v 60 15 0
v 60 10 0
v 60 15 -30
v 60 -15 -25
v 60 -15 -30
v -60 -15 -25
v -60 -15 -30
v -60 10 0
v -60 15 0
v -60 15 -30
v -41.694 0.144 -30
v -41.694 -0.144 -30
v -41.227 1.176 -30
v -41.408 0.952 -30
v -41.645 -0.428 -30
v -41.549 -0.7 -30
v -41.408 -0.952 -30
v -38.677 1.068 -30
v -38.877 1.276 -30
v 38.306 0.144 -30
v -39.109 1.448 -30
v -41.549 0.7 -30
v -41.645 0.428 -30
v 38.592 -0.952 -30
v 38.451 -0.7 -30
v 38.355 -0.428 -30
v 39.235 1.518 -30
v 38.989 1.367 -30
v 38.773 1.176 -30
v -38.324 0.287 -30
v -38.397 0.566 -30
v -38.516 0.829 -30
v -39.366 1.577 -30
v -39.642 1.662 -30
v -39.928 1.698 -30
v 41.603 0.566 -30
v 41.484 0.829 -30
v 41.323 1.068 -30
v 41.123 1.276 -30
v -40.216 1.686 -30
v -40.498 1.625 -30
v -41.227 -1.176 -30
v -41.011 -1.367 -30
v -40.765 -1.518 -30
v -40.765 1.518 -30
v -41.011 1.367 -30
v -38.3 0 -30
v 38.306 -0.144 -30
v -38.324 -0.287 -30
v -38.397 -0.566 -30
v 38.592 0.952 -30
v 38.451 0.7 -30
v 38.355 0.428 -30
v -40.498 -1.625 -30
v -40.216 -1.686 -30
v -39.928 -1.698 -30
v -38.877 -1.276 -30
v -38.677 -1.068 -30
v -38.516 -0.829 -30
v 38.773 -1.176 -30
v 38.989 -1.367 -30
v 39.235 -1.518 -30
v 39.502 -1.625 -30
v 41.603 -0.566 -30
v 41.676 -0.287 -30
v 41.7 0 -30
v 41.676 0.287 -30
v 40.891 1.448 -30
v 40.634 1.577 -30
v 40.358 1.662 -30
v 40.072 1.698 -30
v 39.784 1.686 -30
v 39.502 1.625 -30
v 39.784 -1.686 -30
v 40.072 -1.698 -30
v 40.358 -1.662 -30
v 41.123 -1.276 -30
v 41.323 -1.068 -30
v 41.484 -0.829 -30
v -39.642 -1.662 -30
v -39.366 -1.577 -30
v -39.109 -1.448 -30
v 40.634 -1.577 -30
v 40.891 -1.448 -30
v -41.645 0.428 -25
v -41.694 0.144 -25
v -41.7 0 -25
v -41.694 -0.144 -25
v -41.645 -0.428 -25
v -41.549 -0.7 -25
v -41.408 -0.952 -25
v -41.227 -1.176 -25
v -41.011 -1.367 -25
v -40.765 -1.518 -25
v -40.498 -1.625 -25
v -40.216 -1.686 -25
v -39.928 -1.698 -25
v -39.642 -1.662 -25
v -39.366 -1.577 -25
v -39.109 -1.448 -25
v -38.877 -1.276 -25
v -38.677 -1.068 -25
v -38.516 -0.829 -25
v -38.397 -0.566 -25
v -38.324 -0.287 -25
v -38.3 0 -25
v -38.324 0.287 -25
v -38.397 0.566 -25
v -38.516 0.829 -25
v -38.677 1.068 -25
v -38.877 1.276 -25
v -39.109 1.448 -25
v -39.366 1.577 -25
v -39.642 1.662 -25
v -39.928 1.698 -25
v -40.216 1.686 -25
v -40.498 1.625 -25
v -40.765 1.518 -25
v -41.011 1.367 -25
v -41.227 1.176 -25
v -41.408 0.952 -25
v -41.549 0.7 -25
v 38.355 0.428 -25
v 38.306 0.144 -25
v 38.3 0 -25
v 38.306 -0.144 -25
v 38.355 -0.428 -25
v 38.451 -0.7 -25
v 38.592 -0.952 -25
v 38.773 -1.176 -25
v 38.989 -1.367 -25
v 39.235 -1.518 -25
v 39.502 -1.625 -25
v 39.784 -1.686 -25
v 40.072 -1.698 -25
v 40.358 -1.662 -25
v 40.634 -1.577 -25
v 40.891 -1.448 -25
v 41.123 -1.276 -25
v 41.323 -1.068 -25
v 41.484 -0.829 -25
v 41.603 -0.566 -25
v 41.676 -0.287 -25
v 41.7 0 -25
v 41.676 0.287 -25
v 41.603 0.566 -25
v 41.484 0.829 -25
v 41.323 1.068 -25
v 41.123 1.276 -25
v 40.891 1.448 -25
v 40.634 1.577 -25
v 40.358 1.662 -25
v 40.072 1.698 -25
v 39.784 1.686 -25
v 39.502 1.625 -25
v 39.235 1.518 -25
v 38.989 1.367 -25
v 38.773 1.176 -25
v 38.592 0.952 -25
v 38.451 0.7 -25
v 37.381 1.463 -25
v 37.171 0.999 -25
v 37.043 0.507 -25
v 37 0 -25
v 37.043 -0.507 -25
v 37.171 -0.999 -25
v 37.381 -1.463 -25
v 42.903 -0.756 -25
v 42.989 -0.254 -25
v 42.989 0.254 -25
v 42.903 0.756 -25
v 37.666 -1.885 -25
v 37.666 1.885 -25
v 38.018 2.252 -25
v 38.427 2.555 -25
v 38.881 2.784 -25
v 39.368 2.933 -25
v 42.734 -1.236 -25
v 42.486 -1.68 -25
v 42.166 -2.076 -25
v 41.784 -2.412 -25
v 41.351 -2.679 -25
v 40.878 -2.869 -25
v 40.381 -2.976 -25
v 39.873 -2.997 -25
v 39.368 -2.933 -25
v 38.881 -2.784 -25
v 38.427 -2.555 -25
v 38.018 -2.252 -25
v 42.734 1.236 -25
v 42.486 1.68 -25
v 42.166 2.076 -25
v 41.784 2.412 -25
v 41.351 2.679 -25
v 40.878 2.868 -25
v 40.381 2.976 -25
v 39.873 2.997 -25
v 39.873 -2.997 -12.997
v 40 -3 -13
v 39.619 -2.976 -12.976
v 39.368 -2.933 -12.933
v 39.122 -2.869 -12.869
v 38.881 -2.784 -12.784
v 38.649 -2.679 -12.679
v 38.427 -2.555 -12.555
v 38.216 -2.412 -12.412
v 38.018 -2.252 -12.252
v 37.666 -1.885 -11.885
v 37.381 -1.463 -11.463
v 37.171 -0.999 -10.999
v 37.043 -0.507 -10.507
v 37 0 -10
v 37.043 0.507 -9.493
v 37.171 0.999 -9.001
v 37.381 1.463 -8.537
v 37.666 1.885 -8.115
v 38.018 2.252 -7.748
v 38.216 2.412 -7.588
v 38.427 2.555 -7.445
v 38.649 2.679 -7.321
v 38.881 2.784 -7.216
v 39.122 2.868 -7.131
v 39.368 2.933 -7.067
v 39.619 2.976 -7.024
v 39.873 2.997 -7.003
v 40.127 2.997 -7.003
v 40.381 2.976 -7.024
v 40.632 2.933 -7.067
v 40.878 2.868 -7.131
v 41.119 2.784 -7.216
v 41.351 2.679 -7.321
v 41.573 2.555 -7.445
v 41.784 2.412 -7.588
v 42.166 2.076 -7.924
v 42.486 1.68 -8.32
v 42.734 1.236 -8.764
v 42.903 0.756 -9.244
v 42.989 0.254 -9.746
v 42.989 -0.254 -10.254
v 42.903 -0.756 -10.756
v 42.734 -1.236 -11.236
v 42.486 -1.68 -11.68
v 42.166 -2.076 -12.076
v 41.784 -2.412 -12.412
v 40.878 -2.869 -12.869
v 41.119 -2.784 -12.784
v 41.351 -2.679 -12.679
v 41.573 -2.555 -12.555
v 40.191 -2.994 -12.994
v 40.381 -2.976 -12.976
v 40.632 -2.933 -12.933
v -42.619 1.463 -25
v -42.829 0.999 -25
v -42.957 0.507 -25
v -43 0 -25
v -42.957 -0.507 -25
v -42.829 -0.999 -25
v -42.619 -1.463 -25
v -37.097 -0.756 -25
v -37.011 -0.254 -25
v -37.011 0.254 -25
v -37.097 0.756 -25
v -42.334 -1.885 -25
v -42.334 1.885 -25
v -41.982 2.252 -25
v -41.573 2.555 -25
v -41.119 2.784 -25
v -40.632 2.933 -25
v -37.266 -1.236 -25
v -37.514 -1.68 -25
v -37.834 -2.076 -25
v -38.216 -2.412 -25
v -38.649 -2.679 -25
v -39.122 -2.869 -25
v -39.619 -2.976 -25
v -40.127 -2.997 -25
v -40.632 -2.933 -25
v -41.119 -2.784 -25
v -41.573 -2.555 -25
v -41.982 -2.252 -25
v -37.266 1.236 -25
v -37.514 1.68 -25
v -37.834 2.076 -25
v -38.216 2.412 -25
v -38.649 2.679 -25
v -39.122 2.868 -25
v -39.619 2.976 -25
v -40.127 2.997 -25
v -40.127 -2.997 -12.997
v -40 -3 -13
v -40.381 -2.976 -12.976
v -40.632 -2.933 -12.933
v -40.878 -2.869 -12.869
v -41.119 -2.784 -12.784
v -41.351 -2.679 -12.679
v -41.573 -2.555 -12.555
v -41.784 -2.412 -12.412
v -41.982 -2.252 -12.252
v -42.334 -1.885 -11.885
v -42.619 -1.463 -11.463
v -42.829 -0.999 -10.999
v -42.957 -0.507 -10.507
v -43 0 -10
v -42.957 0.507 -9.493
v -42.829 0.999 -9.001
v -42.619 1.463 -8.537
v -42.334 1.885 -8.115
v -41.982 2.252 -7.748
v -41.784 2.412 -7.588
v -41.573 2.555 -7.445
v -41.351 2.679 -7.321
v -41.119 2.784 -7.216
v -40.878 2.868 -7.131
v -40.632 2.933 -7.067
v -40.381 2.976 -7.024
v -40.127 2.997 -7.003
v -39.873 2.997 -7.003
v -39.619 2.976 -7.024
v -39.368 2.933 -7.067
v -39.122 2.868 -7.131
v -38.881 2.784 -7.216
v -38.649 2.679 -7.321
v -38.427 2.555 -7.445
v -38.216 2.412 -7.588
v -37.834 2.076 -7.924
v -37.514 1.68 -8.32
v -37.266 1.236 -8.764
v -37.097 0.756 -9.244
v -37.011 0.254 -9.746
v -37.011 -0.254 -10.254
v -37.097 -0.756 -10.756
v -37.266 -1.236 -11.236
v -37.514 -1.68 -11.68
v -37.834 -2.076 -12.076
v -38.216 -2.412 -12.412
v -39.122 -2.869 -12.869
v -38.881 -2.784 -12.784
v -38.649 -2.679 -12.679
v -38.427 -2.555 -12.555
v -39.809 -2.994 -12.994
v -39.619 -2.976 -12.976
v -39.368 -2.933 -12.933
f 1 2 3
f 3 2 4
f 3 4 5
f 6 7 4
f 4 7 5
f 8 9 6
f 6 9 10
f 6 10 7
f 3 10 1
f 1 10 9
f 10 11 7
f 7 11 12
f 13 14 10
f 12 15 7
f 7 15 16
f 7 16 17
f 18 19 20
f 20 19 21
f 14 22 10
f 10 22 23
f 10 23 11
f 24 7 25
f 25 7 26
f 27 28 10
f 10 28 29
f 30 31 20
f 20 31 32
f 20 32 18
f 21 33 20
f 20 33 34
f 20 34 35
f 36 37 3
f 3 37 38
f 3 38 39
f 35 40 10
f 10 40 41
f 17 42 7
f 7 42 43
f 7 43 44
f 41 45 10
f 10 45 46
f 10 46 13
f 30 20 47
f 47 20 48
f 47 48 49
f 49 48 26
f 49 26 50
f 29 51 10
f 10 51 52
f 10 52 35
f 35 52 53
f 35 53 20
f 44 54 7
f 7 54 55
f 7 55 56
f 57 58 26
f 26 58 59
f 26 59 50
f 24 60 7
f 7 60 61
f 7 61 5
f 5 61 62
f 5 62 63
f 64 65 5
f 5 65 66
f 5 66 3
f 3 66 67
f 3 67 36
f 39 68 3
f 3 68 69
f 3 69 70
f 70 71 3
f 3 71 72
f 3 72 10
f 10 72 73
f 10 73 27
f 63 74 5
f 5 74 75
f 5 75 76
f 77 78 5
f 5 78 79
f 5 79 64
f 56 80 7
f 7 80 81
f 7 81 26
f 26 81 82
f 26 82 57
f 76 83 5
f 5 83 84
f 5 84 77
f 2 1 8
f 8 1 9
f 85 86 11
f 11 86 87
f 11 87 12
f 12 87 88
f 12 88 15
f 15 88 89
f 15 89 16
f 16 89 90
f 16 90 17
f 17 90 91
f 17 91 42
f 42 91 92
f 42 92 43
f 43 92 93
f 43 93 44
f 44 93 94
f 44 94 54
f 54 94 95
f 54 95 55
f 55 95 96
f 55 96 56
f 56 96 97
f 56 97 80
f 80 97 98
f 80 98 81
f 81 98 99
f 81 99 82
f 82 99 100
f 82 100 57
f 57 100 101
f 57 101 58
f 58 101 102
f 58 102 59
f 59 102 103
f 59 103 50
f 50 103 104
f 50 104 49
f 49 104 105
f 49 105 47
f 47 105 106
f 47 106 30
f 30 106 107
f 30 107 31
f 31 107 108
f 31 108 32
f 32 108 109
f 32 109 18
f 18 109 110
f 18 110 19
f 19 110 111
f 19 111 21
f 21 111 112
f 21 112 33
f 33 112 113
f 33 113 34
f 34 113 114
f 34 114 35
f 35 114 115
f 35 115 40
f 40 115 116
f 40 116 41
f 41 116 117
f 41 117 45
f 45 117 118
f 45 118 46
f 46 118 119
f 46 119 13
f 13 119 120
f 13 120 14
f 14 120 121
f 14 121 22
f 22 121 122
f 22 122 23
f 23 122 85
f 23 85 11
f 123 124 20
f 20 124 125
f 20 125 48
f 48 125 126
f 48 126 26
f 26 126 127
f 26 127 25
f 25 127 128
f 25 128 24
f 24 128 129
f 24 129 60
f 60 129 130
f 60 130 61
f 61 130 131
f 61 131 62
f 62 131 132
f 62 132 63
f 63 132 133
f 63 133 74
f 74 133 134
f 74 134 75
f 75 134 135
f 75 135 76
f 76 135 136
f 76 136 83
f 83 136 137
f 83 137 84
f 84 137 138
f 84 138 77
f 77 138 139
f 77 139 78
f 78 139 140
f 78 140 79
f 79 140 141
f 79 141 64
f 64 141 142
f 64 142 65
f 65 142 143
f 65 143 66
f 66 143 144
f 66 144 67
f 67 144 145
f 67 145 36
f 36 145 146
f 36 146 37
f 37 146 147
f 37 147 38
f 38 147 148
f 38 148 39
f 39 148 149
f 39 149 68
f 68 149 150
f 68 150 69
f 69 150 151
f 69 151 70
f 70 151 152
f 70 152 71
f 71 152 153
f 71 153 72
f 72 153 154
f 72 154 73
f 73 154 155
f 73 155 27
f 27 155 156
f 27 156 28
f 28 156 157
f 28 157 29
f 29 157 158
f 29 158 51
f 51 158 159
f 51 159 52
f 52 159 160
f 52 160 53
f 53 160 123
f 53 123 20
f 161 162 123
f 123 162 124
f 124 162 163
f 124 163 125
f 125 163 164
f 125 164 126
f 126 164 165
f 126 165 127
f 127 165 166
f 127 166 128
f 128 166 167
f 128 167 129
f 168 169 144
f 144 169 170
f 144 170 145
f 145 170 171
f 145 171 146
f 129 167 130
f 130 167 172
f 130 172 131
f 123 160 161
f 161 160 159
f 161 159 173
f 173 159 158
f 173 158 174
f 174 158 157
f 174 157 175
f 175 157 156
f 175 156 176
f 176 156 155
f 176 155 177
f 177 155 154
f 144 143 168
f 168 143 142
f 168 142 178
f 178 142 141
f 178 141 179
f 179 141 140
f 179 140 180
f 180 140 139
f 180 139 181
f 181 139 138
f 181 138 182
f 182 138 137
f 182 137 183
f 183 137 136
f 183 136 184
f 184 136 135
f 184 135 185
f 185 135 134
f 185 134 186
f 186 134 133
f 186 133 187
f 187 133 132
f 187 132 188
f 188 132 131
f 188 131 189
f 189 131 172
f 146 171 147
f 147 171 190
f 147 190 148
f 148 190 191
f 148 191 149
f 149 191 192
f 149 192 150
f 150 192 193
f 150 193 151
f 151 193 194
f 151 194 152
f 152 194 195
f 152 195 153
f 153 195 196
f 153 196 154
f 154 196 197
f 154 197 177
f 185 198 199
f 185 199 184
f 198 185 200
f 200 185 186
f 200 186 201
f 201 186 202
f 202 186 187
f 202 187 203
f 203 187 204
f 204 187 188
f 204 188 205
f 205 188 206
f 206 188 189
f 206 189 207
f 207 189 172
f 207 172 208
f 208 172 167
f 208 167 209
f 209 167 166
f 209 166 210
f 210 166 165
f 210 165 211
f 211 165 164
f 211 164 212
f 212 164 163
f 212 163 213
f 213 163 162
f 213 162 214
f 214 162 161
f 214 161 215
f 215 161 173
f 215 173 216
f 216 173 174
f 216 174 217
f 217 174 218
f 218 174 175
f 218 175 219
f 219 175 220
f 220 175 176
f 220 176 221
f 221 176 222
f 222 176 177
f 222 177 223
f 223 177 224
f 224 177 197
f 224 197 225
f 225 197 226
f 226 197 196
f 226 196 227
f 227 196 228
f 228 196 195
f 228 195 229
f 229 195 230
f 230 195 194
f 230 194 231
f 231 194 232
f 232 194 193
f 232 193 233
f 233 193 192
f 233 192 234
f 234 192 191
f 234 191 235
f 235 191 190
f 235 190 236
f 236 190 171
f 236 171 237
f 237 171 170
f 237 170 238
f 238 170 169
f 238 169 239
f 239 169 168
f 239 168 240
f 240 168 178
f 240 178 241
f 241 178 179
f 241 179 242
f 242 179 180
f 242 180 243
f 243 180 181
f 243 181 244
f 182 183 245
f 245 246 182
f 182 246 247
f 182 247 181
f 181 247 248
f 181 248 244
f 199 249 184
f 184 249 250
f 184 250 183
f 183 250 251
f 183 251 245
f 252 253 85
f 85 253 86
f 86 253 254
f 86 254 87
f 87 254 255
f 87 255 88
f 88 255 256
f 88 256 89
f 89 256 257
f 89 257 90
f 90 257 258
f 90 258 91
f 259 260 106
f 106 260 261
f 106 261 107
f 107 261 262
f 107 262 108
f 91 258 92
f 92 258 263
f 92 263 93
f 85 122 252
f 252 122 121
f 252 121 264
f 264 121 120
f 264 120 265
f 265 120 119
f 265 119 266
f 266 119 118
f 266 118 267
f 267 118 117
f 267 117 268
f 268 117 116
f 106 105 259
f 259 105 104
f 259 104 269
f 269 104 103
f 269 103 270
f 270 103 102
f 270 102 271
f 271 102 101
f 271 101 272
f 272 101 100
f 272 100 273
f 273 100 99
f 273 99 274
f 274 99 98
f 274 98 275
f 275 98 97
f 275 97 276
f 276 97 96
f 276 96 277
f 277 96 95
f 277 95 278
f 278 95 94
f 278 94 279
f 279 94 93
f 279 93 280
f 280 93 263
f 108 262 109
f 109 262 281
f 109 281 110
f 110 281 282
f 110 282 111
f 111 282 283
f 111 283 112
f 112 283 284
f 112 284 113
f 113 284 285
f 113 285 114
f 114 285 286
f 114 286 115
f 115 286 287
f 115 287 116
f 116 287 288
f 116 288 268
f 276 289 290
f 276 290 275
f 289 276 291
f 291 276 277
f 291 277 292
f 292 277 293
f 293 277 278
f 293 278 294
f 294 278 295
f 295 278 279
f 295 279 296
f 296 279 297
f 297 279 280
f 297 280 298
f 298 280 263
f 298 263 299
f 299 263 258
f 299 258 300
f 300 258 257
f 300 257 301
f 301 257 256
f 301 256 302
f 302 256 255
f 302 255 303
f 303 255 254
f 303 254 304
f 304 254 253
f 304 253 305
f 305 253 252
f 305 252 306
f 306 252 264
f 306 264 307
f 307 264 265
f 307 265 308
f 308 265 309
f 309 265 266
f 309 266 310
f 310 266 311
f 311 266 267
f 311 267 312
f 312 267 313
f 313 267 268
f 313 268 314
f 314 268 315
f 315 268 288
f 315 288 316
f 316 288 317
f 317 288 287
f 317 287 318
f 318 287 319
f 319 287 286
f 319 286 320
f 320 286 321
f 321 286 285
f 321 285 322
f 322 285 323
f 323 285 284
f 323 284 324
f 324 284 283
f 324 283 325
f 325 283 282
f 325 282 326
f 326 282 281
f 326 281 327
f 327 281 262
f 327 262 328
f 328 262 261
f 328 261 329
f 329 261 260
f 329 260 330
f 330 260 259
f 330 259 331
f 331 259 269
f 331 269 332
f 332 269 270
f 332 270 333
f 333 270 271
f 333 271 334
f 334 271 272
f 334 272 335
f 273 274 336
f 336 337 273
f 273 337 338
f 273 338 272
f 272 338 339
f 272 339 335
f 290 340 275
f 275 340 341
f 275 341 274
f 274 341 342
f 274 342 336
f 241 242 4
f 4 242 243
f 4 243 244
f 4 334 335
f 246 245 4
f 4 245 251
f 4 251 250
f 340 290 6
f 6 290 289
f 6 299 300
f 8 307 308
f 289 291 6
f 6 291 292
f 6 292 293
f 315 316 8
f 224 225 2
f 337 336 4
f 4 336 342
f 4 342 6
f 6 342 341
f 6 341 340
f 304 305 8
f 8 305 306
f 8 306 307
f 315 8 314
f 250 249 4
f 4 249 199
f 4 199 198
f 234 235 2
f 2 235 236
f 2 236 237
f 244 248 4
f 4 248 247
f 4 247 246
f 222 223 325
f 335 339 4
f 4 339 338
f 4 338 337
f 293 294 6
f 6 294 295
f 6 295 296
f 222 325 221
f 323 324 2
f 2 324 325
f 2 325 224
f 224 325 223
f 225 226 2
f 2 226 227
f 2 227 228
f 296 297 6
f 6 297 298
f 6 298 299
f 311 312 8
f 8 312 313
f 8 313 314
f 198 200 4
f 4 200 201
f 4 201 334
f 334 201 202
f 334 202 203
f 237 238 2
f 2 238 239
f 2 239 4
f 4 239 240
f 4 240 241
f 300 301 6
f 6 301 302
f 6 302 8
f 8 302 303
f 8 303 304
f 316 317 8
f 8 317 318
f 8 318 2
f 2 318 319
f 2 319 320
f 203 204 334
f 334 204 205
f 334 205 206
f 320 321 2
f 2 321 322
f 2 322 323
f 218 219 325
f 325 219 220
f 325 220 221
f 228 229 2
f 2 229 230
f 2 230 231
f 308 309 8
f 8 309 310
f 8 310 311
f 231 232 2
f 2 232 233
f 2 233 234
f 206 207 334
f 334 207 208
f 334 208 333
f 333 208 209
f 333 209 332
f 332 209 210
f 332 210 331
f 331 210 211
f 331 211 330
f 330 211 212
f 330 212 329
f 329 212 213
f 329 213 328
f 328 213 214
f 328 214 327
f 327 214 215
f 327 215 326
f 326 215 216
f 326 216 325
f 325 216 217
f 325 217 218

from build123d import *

# Parameters (mm, degrees)
SKETCH1_W           = 120
SKETCH1_H           = 30
SKETCH1_R           = 1.7
BOSS_EXTRUDE1_DEPTH = 30
SKETCH3_R           = 3
CUT_EXTRUDE1_DEPTH  = 30
CHAMFER1_SIZE       = 25


with BuildPart() as part:
    # Sketch1 → Boss-Extrude1 (new body)
    with BuildSketch(Plane.XY):
        Rectangle(SKETCH1_W, SKETCH1_H)
        with Locations((-40, 0)):
            Circle(SKETCH1_R, mode=Mode.SUBTRACT)
        with Locations((40, 0)):
            Circle(SKETCH1_R, mode=Mode.SUBTRACT)
    extrude(amount=-BOSS_EXTRUDE1_DEPTH)

    # Sketch3 → Cut-Extrude1 (cut)
    with BuildSketch(Plane(origin=(0, 0, -25), x_dir=(-1, 0, 0), z_dir=(0, 0, -1))):
        with Locations((-40, 0)):
            Circle(SKETCH3_R)
        with Locations((40, 0)):
            Circle(SKETCH3_R)
    extrude(amount=-CUT_EXTRUDE1_DEPTH, mode=Mode.SUBTRACT)

    # Chamfer1
    # the kernel refuses this chamfer: 25 mm, written as the material it takes off along each edge
    with BuildSketch(Plane(origin=(124.292074699, -15, 0), x_dir=(0, 0.9996219169112966, 0.02749587661058637), z_dir=(-1, 0, 0))) as chamfer1_piece_1:
        Polygon((CHAMFER1_SIZE * 0.999621916911, CHAMFER1_SIZE * 0.0274958766106), (-CHAMFER1_SIZE * 0.0274958766106, CHAMFER1_SIZE * 0.999621916911), (0, 0), align=None)
    extrude(amount=248.584149398, mode=Mode.SUBTRACT)


solid = part.part
